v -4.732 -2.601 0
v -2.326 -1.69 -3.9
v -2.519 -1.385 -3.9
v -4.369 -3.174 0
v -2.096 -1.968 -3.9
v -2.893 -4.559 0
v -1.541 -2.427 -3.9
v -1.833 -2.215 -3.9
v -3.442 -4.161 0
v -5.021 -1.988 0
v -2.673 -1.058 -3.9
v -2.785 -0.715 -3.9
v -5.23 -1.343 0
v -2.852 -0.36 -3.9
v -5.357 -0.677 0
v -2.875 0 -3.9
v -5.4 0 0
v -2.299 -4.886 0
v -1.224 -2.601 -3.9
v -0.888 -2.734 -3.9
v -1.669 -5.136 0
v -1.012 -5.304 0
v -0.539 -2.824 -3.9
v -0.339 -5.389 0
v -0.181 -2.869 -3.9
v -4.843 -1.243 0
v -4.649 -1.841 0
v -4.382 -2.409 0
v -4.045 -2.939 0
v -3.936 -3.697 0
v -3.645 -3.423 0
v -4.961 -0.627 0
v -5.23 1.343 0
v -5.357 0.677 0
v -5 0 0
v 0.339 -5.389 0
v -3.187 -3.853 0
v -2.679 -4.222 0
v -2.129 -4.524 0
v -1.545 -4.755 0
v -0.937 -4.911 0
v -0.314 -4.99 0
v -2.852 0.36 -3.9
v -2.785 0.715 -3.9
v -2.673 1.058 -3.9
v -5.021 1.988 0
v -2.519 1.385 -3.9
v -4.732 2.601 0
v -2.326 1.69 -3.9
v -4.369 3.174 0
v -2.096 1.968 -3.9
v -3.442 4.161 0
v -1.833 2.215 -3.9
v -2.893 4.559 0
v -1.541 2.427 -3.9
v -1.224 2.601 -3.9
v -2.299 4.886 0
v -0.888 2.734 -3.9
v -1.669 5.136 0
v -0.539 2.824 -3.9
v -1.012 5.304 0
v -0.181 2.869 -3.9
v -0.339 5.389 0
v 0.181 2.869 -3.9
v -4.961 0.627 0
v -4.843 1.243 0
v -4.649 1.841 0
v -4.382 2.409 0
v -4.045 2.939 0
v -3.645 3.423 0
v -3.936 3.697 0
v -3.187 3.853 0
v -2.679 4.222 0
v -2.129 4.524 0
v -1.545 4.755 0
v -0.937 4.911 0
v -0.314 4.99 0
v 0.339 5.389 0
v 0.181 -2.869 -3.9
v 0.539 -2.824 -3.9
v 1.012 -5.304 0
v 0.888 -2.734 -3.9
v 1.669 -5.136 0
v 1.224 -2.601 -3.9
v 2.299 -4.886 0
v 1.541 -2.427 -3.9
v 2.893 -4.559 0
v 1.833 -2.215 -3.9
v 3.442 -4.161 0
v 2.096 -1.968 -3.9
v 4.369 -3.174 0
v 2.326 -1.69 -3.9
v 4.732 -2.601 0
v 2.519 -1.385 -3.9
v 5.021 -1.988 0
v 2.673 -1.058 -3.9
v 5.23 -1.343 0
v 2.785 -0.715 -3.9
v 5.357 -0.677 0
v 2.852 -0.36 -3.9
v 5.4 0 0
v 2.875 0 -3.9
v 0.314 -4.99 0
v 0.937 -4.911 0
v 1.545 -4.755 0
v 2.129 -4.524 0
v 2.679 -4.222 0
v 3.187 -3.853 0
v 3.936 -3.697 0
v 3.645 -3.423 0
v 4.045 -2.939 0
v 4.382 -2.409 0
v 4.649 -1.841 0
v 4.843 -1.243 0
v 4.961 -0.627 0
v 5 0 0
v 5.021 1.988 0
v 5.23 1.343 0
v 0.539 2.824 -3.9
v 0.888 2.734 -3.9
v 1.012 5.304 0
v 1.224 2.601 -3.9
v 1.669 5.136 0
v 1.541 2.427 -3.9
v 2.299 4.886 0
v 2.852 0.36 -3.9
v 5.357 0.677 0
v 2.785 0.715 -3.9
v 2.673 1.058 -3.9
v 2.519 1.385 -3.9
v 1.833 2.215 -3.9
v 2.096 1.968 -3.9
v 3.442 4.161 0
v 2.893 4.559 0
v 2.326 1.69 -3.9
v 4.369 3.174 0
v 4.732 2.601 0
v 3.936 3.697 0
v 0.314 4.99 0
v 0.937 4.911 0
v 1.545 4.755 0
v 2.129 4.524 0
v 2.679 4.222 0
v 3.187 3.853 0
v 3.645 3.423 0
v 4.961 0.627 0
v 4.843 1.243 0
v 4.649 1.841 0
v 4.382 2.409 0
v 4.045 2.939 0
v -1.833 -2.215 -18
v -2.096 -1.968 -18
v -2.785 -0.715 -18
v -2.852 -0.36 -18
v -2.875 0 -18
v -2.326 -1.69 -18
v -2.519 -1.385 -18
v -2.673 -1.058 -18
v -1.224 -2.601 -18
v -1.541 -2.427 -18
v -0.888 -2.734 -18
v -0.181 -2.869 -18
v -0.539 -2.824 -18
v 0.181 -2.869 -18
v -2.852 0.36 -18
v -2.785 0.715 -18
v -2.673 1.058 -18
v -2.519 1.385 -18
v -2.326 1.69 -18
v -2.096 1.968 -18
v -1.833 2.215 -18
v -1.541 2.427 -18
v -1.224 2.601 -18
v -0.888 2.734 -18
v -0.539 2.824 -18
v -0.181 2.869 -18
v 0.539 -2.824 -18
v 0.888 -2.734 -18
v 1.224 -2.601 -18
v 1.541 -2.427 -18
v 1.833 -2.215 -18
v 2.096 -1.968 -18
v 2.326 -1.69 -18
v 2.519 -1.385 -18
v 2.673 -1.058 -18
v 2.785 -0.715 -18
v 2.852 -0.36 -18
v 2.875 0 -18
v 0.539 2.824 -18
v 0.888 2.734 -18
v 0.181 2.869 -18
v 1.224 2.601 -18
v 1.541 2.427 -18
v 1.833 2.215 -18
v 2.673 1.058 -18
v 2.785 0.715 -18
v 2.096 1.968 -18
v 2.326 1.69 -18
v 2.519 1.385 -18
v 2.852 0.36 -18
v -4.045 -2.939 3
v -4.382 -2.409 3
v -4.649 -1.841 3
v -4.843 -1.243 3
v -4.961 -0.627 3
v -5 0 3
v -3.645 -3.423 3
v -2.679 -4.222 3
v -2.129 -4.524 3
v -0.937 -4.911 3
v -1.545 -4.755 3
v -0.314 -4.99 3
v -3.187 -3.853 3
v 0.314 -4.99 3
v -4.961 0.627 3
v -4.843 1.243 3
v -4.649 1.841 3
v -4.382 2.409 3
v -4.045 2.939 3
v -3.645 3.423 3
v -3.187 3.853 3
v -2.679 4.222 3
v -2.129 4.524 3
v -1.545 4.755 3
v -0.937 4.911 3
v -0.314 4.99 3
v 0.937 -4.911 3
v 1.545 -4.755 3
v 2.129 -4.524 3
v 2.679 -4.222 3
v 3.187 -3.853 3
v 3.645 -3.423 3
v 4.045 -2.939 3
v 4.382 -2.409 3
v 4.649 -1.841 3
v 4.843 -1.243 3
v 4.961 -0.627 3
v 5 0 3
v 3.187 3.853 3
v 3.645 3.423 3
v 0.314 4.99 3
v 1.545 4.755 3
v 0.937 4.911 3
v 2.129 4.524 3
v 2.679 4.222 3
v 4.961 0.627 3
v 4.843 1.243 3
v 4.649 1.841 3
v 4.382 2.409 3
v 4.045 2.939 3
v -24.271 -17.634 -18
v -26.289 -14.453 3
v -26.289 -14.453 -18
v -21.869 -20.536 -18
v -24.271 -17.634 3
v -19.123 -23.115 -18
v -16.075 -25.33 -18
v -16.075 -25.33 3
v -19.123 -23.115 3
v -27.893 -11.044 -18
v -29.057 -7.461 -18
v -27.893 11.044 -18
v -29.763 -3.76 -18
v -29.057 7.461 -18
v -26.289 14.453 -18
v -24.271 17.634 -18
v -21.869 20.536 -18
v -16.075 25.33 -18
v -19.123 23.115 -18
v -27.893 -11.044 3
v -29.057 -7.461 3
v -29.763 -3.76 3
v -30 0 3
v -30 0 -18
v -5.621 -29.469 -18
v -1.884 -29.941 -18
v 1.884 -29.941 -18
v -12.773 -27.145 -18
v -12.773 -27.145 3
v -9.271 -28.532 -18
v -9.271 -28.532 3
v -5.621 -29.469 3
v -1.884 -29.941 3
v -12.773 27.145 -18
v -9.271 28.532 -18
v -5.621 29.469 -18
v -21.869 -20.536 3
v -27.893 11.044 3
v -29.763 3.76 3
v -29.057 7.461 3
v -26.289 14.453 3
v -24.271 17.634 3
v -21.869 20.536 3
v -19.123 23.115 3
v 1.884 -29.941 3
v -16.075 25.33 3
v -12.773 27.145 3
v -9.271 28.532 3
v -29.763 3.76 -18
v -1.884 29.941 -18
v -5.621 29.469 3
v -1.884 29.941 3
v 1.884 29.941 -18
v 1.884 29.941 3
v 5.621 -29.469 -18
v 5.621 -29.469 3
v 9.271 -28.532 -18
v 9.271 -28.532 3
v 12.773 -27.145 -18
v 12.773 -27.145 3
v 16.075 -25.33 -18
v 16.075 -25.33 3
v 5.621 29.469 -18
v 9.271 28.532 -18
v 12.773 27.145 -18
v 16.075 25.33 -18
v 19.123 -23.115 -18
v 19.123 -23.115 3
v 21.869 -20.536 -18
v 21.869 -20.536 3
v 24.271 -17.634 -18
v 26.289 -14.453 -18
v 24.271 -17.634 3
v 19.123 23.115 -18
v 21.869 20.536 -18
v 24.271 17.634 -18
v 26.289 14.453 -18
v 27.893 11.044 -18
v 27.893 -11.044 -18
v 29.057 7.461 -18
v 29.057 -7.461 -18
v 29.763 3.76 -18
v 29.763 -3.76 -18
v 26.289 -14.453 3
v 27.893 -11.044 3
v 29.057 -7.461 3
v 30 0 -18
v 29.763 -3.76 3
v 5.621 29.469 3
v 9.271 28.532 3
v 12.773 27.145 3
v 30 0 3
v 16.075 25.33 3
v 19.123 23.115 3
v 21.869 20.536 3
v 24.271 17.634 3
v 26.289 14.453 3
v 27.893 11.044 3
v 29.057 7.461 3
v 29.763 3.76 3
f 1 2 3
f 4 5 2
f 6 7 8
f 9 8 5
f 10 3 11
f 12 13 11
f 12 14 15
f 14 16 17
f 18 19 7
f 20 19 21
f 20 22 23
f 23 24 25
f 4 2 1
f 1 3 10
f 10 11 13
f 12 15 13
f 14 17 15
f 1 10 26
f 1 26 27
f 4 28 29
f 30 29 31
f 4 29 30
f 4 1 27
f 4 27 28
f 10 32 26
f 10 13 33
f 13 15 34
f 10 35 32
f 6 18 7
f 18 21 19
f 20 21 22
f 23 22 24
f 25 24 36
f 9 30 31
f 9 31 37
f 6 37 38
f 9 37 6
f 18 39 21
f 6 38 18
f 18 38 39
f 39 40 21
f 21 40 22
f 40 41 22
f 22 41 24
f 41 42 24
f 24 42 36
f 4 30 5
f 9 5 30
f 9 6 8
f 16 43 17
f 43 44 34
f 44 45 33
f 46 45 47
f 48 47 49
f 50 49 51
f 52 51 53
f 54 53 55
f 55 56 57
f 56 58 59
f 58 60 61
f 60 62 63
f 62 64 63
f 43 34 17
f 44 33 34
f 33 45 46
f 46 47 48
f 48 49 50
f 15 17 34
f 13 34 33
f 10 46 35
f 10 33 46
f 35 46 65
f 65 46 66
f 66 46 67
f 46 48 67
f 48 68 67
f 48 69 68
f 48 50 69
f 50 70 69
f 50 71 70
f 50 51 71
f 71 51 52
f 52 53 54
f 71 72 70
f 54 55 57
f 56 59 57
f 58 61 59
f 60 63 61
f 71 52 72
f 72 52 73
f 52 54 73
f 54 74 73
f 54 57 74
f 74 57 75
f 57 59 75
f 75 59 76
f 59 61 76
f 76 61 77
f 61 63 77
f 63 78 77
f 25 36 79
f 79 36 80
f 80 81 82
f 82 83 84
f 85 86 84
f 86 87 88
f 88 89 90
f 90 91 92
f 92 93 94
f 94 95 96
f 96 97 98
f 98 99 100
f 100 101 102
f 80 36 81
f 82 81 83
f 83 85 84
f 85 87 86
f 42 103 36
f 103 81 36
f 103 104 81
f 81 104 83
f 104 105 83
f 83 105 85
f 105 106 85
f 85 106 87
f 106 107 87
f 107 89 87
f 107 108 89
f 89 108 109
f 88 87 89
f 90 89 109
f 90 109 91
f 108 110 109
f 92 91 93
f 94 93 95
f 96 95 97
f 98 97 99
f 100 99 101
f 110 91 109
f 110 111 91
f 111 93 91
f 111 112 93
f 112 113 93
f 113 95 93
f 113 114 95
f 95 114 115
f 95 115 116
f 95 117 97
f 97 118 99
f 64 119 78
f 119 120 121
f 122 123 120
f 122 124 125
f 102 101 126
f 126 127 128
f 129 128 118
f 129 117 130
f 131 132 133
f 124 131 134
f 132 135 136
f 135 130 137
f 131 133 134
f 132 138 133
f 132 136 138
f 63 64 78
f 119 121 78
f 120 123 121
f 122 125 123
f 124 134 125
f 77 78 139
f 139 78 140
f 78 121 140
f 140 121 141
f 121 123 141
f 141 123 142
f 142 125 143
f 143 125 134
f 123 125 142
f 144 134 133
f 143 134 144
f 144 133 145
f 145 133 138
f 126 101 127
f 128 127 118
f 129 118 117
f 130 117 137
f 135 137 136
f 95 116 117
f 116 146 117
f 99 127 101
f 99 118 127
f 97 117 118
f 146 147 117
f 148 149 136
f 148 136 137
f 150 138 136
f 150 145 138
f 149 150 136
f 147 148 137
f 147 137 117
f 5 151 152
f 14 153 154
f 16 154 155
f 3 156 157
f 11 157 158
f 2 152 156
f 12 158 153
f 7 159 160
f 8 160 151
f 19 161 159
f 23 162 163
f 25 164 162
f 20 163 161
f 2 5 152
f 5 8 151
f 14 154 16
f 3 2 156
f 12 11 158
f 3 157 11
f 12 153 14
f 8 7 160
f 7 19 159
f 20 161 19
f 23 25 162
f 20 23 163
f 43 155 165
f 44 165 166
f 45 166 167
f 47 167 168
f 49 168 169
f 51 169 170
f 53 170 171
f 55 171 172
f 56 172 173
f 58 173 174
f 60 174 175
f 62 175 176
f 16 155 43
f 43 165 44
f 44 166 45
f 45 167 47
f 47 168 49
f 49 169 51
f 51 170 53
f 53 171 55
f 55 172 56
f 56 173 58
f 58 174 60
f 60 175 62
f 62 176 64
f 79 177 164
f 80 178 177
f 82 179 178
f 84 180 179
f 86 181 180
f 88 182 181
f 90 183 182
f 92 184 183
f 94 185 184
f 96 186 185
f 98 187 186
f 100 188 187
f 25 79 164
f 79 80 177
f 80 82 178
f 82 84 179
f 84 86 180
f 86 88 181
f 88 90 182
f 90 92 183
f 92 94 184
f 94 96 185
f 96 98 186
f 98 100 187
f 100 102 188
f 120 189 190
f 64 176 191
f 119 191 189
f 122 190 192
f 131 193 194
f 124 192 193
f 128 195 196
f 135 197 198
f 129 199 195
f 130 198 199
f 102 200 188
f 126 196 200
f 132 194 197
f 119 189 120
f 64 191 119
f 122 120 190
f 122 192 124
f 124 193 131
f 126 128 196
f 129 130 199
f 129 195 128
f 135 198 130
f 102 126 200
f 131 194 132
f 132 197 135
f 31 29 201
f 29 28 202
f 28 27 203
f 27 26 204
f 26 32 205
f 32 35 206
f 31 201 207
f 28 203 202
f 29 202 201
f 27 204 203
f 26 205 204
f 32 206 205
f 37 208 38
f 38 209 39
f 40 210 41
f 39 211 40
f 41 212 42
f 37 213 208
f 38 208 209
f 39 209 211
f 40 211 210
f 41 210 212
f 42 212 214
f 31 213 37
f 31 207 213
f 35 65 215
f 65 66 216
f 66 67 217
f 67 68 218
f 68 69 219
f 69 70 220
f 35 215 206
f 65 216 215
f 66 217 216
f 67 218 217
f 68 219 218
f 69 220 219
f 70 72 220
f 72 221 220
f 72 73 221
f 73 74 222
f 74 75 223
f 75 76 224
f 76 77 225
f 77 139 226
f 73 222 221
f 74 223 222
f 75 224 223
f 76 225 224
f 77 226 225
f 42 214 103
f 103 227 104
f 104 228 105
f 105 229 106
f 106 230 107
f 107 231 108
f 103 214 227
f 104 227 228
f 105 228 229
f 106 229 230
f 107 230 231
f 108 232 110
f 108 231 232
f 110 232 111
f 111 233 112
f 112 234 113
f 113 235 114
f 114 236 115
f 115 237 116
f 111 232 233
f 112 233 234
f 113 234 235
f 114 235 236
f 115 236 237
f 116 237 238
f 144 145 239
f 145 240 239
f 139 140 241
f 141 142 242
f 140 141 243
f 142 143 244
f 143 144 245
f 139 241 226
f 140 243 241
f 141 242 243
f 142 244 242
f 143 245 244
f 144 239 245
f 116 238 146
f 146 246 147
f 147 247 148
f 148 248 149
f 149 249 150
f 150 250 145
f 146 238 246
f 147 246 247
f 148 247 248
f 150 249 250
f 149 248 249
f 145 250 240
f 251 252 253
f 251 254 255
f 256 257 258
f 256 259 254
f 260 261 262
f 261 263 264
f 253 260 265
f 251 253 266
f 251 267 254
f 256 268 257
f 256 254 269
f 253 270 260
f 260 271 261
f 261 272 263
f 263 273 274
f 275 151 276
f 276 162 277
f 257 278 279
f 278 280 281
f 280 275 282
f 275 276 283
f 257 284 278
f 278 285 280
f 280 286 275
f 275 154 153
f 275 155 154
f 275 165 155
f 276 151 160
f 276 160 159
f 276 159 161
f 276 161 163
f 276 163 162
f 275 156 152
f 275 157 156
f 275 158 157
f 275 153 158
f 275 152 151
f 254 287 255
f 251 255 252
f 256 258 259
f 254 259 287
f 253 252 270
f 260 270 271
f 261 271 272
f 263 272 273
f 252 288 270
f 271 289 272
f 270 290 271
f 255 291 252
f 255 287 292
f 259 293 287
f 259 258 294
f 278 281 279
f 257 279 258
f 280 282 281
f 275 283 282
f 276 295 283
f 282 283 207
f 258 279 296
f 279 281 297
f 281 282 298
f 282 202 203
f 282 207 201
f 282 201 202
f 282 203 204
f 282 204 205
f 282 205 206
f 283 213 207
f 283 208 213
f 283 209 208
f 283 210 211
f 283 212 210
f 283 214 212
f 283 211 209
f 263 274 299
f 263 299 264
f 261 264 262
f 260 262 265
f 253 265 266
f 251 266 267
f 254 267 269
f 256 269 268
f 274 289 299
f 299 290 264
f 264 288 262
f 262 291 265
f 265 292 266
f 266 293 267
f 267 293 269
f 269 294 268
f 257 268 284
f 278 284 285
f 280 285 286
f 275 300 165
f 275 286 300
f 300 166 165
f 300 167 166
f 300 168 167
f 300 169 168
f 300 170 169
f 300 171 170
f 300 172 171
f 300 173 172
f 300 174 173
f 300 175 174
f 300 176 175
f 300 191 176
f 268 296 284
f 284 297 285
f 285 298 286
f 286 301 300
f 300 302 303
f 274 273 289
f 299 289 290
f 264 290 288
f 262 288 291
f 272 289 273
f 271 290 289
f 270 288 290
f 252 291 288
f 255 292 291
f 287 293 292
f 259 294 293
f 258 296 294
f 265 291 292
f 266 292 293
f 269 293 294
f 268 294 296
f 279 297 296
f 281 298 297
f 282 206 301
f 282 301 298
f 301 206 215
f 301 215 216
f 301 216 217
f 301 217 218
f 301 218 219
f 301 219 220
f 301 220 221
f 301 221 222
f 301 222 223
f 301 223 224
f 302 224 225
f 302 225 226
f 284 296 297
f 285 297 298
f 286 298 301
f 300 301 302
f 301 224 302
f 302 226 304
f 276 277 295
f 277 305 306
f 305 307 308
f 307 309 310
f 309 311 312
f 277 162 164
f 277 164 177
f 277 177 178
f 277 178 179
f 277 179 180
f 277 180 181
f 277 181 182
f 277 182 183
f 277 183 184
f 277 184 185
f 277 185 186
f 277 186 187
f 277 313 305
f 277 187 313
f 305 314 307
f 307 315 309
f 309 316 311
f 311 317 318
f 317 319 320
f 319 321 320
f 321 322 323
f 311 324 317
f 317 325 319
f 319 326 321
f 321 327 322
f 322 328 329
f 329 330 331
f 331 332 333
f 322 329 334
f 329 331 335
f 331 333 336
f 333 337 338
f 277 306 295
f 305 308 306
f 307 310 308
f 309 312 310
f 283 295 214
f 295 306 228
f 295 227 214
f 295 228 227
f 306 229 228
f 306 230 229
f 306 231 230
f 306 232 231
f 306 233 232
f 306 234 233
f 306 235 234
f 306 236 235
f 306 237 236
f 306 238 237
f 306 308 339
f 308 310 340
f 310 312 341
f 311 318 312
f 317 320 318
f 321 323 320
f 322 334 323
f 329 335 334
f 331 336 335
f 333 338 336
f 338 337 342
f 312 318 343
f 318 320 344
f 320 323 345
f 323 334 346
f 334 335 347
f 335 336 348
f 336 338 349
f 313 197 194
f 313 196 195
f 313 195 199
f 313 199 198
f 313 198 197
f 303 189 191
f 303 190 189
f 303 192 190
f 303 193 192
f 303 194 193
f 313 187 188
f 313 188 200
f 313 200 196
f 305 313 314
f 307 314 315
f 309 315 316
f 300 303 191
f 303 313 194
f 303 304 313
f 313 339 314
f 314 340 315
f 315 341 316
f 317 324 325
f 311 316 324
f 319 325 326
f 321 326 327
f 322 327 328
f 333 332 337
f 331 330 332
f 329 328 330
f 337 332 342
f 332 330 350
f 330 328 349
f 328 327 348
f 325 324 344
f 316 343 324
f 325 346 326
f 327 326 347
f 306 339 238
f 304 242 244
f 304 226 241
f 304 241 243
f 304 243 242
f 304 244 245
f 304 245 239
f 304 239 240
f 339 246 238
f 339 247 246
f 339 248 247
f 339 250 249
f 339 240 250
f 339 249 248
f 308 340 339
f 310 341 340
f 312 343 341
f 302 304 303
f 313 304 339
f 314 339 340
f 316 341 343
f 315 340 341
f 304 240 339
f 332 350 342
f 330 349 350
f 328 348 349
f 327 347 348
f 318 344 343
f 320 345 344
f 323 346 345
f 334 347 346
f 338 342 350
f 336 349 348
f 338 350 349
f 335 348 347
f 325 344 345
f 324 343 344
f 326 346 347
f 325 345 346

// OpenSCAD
$fn = 50;

difference() {
	union() {
		translate(v = [0, 0, -18.0]) {
			cylinder(h = 21, r = 30.0);
		}
	}
	union() {
		translate(v = [0, 0, 0]) {
			rotate(a = [0, 0, 0]) {
				difference() {
					union() {
						translate(v = [0, 0, -21.0]) {
							cylinder(h = 21, r = 2.6);
						}
						translate(v = [0, 0, -3.9]) {
							cylinder(h = 3.9, r1 = 2.875, r2 = 5.4);
						}
						translate(v = [0, 0, -21.0]) {
							cylinder(h = 21, r = 2.875);
						}
						translate(v = [0, 0, -21.0]) {
							cylinder(h = 21, r = 2.6);
						}
					}
					union();
				}
			}
		}
		#cylinder(h = 3, r = 5.0);
	}
}
